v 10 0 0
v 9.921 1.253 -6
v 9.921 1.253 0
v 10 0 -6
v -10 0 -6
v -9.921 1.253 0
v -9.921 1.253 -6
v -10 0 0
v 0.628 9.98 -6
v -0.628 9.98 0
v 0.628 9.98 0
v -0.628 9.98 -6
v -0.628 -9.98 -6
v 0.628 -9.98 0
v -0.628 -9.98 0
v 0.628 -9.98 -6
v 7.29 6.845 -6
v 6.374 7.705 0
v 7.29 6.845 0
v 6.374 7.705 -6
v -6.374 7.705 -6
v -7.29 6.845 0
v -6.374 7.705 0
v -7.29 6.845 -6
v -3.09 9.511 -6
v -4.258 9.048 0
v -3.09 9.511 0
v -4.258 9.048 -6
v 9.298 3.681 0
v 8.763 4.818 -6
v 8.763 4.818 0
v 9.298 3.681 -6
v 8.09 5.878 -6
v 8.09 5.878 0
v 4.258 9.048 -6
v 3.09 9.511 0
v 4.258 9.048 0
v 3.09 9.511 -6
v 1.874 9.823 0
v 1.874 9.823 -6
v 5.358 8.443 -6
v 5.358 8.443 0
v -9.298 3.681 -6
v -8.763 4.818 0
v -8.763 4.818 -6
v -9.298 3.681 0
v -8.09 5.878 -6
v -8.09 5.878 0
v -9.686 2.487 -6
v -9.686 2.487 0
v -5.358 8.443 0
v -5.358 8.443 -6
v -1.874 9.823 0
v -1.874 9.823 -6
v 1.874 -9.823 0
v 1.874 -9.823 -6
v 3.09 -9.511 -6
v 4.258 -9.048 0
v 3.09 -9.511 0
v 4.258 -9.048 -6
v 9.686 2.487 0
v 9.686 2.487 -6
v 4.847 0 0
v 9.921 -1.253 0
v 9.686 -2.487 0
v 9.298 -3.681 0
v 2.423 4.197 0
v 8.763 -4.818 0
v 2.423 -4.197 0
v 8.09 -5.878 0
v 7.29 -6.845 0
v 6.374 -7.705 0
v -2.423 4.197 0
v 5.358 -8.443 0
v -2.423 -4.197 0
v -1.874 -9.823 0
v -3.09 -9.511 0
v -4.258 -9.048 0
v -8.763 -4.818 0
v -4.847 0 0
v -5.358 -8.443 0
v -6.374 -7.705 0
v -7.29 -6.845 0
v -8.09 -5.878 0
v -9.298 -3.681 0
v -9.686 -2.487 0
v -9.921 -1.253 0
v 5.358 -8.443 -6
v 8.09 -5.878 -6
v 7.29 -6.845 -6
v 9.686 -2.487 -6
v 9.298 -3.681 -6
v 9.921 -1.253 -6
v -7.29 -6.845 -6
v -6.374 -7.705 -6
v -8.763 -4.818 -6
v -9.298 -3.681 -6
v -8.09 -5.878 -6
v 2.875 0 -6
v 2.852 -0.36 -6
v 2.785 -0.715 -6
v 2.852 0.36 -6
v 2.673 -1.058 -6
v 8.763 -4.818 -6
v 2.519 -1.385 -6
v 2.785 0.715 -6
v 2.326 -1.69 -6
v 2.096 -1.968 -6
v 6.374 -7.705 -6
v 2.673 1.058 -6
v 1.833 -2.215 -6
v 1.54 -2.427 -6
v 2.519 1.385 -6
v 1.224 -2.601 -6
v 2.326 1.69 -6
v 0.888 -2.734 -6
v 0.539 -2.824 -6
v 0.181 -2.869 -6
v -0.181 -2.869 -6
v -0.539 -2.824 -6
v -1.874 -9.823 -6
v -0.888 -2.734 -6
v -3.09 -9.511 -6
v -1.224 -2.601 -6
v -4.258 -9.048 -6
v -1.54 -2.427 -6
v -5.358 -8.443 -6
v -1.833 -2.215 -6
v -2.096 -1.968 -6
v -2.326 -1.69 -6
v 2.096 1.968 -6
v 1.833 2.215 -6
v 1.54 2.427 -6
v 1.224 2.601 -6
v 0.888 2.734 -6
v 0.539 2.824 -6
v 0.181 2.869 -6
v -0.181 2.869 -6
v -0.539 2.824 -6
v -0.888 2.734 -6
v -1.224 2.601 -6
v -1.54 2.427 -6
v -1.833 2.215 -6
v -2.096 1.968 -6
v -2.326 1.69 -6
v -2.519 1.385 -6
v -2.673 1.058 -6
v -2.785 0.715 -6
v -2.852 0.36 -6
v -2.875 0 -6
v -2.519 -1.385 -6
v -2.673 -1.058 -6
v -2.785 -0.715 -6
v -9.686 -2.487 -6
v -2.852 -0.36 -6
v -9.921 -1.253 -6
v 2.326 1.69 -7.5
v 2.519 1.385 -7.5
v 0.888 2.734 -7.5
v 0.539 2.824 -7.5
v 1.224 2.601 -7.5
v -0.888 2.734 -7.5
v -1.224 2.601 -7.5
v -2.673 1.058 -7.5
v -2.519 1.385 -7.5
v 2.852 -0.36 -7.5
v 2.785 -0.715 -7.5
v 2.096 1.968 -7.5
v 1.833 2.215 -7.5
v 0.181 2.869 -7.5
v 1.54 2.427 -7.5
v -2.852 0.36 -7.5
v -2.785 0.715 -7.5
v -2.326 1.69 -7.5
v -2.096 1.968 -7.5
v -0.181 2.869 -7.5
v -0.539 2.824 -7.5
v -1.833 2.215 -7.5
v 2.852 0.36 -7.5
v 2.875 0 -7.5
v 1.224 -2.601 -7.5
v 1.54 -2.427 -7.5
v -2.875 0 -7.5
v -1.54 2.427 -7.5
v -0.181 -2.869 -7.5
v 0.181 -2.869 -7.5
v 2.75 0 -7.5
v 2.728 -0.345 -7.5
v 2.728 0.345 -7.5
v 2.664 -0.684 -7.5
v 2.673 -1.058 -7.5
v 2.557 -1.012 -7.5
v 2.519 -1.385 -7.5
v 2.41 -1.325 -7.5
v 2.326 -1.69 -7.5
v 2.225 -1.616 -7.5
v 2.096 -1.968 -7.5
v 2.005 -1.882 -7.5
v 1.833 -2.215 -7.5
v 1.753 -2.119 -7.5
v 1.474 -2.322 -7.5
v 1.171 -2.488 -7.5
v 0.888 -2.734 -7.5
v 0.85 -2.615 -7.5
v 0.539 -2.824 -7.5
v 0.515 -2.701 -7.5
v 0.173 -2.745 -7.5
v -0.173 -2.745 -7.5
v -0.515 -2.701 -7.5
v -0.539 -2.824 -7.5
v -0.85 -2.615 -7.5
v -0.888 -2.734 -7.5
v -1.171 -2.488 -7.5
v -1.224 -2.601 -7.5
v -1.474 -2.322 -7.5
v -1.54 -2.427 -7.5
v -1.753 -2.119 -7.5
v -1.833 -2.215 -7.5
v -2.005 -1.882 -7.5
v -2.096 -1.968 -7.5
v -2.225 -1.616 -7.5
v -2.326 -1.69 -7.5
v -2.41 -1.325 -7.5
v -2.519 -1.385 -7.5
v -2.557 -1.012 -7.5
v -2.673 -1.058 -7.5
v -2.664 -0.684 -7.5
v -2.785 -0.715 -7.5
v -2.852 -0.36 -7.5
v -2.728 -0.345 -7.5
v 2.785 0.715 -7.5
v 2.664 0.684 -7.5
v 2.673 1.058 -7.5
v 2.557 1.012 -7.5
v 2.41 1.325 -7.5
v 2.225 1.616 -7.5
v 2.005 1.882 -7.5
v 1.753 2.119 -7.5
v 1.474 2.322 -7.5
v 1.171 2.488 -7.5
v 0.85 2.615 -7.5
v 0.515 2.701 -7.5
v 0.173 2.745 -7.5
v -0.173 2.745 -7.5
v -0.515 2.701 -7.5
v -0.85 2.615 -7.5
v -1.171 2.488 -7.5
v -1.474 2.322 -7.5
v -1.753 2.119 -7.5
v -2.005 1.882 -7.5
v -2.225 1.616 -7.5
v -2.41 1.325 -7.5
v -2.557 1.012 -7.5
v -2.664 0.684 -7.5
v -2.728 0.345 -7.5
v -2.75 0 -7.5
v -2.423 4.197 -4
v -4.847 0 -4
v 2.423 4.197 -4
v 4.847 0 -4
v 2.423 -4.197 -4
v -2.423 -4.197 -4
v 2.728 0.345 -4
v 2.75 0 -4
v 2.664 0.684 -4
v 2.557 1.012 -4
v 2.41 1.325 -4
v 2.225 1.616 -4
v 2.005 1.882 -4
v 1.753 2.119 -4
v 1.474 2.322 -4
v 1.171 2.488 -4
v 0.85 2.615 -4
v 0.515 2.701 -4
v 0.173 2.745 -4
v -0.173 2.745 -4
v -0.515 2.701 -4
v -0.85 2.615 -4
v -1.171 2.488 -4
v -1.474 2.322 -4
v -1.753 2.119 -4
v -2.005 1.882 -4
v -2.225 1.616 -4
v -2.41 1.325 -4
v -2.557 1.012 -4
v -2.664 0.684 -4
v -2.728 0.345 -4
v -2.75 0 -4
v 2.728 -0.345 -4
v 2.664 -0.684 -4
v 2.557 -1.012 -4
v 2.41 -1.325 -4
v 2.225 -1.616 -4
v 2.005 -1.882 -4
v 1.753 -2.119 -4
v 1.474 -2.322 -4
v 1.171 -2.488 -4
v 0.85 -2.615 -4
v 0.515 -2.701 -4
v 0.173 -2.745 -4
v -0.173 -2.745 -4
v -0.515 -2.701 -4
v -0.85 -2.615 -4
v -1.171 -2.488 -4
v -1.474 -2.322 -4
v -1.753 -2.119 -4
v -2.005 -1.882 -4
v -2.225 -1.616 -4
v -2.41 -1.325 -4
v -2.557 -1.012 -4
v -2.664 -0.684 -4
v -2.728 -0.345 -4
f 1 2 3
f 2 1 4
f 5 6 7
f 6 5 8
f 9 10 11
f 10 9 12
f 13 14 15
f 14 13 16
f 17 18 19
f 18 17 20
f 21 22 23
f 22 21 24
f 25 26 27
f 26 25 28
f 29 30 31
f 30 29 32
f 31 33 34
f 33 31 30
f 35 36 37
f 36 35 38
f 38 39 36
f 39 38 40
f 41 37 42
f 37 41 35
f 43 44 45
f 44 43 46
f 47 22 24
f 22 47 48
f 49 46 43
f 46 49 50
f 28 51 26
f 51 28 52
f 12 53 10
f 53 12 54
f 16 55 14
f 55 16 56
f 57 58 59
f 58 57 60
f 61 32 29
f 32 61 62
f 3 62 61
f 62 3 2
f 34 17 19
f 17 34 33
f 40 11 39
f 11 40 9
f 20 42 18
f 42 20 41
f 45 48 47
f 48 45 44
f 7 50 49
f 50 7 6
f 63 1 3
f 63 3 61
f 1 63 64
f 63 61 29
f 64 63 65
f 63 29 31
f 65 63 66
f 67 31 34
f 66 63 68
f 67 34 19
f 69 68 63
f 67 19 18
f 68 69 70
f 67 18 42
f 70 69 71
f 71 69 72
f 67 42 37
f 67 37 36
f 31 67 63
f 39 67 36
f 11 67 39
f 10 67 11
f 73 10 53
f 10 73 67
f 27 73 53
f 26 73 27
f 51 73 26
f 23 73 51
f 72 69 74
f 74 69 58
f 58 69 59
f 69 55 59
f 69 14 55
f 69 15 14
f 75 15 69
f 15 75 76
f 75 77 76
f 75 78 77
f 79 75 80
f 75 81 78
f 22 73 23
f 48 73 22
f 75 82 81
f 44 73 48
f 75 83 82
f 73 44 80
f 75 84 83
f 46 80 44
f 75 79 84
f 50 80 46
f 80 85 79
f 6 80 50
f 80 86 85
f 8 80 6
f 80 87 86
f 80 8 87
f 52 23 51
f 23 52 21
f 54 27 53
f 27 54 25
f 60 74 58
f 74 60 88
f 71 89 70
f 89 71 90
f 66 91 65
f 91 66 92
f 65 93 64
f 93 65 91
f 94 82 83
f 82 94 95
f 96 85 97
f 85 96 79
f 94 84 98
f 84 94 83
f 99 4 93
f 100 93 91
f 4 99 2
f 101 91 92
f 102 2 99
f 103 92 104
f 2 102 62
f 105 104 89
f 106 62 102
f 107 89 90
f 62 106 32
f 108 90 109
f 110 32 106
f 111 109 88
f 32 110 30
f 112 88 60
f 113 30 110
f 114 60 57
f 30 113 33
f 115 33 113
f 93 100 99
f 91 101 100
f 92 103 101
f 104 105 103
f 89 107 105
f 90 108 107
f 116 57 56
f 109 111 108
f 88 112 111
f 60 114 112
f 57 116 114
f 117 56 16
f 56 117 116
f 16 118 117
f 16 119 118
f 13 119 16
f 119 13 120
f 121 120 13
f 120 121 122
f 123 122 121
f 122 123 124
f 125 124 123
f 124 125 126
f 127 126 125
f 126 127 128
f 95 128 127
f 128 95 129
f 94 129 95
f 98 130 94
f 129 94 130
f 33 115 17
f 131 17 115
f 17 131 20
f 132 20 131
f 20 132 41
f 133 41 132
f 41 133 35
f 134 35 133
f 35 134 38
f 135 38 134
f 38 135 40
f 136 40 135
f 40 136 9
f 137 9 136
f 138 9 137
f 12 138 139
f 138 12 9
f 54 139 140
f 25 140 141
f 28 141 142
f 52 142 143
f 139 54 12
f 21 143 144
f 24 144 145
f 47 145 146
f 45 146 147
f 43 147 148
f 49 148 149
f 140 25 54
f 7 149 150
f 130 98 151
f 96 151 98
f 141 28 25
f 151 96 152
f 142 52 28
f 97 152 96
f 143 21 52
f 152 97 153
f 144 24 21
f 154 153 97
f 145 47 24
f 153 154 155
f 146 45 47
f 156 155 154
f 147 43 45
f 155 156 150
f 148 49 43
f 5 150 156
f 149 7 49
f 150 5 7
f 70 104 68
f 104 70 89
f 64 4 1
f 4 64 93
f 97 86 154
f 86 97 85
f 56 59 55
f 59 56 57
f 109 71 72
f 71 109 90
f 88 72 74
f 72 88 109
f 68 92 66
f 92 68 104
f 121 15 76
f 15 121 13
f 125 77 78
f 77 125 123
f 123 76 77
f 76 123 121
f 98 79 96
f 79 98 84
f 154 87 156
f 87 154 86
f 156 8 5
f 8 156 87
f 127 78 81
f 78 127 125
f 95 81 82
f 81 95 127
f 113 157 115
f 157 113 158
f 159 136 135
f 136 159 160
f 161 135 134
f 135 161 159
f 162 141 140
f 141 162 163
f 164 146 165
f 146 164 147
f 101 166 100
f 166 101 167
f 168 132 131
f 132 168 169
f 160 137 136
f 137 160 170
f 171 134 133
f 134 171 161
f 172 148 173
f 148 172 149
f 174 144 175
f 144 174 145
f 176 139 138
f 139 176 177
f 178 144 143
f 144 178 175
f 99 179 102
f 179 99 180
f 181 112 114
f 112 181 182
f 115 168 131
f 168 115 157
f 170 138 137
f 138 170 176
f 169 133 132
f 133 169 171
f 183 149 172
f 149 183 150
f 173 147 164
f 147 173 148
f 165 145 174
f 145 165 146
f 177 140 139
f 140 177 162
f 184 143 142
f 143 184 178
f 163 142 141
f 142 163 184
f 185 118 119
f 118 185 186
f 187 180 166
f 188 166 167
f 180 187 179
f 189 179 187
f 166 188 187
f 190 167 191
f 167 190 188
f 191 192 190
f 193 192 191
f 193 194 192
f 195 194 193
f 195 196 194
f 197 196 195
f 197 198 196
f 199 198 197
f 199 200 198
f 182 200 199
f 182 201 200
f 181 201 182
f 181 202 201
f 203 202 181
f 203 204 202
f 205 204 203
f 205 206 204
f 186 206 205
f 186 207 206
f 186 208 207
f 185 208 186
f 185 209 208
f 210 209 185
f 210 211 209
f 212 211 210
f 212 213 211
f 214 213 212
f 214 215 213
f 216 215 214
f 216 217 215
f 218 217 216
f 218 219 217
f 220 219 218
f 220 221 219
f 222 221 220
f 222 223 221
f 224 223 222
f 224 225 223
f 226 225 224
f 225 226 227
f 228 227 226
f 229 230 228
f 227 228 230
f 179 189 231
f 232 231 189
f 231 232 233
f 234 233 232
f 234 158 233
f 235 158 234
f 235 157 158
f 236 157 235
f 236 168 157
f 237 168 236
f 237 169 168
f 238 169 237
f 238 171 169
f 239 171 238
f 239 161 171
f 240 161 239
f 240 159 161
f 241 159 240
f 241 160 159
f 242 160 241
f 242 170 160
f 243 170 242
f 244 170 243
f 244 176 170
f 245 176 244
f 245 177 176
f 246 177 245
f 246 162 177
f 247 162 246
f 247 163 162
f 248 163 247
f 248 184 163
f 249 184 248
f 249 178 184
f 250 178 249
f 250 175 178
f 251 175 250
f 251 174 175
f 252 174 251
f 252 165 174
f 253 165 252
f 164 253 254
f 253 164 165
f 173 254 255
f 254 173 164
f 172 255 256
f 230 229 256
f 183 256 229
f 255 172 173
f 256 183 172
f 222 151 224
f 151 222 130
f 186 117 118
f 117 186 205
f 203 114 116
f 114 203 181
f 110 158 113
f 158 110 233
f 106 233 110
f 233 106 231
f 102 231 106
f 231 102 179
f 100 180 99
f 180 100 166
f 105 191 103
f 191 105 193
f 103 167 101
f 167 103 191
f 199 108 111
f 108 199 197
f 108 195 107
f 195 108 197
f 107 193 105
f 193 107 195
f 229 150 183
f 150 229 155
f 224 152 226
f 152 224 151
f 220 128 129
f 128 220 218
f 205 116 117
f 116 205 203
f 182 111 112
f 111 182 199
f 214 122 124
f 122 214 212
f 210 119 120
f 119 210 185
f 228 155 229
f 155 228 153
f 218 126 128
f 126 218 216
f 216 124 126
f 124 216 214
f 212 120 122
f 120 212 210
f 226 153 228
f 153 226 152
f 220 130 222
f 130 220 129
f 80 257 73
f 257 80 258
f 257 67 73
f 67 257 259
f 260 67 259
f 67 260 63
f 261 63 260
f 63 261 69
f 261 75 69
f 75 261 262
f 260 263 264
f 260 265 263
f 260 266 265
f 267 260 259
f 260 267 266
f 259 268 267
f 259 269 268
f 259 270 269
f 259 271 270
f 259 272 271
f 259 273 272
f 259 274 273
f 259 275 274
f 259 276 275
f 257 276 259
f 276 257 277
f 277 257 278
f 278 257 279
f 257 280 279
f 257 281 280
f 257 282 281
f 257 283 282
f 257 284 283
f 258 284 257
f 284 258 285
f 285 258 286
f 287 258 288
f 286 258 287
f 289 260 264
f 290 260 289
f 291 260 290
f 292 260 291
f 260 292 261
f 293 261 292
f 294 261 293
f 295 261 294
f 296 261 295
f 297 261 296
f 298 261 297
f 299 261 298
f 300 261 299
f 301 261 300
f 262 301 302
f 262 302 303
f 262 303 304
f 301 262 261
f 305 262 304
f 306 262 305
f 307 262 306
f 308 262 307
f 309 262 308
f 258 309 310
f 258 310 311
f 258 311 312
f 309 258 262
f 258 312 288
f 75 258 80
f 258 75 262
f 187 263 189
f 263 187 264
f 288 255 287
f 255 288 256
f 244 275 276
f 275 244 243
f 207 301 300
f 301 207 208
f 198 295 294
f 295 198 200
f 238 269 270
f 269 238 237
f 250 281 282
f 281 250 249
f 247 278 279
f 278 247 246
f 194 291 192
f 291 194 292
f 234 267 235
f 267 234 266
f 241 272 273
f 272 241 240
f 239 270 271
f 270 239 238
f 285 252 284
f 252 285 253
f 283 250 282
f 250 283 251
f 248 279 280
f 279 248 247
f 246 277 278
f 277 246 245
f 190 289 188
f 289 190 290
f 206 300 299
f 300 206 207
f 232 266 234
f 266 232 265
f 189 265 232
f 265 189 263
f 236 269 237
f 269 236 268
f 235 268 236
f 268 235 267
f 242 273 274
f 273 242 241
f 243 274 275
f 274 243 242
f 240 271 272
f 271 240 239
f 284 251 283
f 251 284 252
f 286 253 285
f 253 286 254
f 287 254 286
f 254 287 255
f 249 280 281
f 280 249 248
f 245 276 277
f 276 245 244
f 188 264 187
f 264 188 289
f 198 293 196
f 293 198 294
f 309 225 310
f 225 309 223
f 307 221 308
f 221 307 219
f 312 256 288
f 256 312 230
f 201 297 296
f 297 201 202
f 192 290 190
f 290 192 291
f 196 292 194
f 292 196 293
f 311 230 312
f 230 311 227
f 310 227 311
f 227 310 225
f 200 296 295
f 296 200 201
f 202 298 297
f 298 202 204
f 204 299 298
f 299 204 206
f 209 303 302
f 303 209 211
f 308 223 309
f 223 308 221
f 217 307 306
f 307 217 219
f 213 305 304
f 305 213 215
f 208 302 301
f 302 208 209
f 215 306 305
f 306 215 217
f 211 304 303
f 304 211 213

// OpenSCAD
$fn = 50;


difference() {
	union() {
		translate(v = [0, 0, -6.0000000000]) {
			cylinder(h = 6.0000000000, r = 10.0000000000);
		}
		#translate(v = [0, 0, -7.5000000000]) {
			cylinder(h = 7.5000000000, r = 2.8750000000);
		}
	}
	union() {
		translate(v = [0, 0, 0]) {
			rotate(a = [0, 0, 0]) {
				difference() {
					union() {
						translate(v = [0, 0, -4]) {
							linear_extrude(height = 4) {
								polygon(points = [[4.8468000000, 0.0000000000], [2.4234000000, 4.1974519271], [-2.4234000000, 4.1974519271], [-4.8468000000, 0.0000000000], [-2.4234000000, -4.1974519271], [2.4234000000, -4.1974519271]]);
							}
						}
					}
					union();
				}
			}
		}
		#translate(v = [0, 0, -100.0000000000]) {
			cylinder(h = 200, r = 2.7500000000);
		}
	}
}
